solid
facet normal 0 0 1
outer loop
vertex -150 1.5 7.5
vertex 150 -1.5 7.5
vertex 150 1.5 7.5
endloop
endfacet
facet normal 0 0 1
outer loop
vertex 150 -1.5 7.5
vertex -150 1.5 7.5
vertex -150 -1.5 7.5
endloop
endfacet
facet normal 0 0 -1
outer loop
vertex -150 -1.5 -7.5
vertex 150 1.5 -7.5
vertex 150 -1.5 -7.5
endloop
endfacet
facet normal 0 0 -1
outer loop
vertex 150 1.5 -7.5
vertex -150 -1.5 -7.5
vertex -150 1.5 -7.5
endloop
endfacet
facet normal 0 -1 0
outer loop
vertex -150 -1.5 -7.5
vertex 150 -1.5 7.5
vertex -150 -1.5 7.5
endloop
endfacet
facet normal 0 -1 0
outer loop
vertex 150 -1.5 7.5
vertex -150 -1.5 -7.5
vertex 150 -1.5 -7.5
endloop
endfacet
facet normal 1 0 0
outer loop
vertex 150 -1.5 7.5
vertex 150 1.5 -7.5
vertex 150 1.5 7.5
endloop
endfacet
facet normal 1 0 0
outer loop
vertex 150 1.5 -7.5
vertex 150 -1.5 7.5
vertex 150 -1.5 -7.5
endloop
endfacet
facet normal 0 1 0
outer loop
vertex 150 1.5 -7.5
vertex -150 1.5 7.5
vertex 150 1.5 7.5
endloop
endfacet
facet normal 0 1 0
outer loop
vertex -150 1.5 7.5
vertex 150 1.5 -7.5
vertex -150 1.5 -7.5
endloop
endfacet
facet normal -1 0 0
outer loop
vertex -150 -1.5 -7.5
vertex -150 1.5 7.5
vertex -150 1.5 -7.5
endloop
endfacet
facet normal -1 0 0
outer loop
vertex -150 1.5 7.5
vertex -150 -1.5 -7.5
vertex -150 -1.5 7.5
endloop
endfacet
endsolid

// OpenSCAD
// SPDX-License-Identifier: MIT
$fa = 1;
$fs = 0.4;


rail_length = 300;
rail_width = 3;
rail_height =15;


// Set split to true if your 3D Printer can't support a length of 300mm
split = false;
if (split == true) {
    cube([(rail_length / 2), rail_width, rail_height], center=true);
    translate([0, (rail_width * 3), 0])
        cube([(rail_length / 2), rail_width, rail_height], center=true);
}
else {
    cube([rail_length, rail_width, rail_height], center=true);
}
